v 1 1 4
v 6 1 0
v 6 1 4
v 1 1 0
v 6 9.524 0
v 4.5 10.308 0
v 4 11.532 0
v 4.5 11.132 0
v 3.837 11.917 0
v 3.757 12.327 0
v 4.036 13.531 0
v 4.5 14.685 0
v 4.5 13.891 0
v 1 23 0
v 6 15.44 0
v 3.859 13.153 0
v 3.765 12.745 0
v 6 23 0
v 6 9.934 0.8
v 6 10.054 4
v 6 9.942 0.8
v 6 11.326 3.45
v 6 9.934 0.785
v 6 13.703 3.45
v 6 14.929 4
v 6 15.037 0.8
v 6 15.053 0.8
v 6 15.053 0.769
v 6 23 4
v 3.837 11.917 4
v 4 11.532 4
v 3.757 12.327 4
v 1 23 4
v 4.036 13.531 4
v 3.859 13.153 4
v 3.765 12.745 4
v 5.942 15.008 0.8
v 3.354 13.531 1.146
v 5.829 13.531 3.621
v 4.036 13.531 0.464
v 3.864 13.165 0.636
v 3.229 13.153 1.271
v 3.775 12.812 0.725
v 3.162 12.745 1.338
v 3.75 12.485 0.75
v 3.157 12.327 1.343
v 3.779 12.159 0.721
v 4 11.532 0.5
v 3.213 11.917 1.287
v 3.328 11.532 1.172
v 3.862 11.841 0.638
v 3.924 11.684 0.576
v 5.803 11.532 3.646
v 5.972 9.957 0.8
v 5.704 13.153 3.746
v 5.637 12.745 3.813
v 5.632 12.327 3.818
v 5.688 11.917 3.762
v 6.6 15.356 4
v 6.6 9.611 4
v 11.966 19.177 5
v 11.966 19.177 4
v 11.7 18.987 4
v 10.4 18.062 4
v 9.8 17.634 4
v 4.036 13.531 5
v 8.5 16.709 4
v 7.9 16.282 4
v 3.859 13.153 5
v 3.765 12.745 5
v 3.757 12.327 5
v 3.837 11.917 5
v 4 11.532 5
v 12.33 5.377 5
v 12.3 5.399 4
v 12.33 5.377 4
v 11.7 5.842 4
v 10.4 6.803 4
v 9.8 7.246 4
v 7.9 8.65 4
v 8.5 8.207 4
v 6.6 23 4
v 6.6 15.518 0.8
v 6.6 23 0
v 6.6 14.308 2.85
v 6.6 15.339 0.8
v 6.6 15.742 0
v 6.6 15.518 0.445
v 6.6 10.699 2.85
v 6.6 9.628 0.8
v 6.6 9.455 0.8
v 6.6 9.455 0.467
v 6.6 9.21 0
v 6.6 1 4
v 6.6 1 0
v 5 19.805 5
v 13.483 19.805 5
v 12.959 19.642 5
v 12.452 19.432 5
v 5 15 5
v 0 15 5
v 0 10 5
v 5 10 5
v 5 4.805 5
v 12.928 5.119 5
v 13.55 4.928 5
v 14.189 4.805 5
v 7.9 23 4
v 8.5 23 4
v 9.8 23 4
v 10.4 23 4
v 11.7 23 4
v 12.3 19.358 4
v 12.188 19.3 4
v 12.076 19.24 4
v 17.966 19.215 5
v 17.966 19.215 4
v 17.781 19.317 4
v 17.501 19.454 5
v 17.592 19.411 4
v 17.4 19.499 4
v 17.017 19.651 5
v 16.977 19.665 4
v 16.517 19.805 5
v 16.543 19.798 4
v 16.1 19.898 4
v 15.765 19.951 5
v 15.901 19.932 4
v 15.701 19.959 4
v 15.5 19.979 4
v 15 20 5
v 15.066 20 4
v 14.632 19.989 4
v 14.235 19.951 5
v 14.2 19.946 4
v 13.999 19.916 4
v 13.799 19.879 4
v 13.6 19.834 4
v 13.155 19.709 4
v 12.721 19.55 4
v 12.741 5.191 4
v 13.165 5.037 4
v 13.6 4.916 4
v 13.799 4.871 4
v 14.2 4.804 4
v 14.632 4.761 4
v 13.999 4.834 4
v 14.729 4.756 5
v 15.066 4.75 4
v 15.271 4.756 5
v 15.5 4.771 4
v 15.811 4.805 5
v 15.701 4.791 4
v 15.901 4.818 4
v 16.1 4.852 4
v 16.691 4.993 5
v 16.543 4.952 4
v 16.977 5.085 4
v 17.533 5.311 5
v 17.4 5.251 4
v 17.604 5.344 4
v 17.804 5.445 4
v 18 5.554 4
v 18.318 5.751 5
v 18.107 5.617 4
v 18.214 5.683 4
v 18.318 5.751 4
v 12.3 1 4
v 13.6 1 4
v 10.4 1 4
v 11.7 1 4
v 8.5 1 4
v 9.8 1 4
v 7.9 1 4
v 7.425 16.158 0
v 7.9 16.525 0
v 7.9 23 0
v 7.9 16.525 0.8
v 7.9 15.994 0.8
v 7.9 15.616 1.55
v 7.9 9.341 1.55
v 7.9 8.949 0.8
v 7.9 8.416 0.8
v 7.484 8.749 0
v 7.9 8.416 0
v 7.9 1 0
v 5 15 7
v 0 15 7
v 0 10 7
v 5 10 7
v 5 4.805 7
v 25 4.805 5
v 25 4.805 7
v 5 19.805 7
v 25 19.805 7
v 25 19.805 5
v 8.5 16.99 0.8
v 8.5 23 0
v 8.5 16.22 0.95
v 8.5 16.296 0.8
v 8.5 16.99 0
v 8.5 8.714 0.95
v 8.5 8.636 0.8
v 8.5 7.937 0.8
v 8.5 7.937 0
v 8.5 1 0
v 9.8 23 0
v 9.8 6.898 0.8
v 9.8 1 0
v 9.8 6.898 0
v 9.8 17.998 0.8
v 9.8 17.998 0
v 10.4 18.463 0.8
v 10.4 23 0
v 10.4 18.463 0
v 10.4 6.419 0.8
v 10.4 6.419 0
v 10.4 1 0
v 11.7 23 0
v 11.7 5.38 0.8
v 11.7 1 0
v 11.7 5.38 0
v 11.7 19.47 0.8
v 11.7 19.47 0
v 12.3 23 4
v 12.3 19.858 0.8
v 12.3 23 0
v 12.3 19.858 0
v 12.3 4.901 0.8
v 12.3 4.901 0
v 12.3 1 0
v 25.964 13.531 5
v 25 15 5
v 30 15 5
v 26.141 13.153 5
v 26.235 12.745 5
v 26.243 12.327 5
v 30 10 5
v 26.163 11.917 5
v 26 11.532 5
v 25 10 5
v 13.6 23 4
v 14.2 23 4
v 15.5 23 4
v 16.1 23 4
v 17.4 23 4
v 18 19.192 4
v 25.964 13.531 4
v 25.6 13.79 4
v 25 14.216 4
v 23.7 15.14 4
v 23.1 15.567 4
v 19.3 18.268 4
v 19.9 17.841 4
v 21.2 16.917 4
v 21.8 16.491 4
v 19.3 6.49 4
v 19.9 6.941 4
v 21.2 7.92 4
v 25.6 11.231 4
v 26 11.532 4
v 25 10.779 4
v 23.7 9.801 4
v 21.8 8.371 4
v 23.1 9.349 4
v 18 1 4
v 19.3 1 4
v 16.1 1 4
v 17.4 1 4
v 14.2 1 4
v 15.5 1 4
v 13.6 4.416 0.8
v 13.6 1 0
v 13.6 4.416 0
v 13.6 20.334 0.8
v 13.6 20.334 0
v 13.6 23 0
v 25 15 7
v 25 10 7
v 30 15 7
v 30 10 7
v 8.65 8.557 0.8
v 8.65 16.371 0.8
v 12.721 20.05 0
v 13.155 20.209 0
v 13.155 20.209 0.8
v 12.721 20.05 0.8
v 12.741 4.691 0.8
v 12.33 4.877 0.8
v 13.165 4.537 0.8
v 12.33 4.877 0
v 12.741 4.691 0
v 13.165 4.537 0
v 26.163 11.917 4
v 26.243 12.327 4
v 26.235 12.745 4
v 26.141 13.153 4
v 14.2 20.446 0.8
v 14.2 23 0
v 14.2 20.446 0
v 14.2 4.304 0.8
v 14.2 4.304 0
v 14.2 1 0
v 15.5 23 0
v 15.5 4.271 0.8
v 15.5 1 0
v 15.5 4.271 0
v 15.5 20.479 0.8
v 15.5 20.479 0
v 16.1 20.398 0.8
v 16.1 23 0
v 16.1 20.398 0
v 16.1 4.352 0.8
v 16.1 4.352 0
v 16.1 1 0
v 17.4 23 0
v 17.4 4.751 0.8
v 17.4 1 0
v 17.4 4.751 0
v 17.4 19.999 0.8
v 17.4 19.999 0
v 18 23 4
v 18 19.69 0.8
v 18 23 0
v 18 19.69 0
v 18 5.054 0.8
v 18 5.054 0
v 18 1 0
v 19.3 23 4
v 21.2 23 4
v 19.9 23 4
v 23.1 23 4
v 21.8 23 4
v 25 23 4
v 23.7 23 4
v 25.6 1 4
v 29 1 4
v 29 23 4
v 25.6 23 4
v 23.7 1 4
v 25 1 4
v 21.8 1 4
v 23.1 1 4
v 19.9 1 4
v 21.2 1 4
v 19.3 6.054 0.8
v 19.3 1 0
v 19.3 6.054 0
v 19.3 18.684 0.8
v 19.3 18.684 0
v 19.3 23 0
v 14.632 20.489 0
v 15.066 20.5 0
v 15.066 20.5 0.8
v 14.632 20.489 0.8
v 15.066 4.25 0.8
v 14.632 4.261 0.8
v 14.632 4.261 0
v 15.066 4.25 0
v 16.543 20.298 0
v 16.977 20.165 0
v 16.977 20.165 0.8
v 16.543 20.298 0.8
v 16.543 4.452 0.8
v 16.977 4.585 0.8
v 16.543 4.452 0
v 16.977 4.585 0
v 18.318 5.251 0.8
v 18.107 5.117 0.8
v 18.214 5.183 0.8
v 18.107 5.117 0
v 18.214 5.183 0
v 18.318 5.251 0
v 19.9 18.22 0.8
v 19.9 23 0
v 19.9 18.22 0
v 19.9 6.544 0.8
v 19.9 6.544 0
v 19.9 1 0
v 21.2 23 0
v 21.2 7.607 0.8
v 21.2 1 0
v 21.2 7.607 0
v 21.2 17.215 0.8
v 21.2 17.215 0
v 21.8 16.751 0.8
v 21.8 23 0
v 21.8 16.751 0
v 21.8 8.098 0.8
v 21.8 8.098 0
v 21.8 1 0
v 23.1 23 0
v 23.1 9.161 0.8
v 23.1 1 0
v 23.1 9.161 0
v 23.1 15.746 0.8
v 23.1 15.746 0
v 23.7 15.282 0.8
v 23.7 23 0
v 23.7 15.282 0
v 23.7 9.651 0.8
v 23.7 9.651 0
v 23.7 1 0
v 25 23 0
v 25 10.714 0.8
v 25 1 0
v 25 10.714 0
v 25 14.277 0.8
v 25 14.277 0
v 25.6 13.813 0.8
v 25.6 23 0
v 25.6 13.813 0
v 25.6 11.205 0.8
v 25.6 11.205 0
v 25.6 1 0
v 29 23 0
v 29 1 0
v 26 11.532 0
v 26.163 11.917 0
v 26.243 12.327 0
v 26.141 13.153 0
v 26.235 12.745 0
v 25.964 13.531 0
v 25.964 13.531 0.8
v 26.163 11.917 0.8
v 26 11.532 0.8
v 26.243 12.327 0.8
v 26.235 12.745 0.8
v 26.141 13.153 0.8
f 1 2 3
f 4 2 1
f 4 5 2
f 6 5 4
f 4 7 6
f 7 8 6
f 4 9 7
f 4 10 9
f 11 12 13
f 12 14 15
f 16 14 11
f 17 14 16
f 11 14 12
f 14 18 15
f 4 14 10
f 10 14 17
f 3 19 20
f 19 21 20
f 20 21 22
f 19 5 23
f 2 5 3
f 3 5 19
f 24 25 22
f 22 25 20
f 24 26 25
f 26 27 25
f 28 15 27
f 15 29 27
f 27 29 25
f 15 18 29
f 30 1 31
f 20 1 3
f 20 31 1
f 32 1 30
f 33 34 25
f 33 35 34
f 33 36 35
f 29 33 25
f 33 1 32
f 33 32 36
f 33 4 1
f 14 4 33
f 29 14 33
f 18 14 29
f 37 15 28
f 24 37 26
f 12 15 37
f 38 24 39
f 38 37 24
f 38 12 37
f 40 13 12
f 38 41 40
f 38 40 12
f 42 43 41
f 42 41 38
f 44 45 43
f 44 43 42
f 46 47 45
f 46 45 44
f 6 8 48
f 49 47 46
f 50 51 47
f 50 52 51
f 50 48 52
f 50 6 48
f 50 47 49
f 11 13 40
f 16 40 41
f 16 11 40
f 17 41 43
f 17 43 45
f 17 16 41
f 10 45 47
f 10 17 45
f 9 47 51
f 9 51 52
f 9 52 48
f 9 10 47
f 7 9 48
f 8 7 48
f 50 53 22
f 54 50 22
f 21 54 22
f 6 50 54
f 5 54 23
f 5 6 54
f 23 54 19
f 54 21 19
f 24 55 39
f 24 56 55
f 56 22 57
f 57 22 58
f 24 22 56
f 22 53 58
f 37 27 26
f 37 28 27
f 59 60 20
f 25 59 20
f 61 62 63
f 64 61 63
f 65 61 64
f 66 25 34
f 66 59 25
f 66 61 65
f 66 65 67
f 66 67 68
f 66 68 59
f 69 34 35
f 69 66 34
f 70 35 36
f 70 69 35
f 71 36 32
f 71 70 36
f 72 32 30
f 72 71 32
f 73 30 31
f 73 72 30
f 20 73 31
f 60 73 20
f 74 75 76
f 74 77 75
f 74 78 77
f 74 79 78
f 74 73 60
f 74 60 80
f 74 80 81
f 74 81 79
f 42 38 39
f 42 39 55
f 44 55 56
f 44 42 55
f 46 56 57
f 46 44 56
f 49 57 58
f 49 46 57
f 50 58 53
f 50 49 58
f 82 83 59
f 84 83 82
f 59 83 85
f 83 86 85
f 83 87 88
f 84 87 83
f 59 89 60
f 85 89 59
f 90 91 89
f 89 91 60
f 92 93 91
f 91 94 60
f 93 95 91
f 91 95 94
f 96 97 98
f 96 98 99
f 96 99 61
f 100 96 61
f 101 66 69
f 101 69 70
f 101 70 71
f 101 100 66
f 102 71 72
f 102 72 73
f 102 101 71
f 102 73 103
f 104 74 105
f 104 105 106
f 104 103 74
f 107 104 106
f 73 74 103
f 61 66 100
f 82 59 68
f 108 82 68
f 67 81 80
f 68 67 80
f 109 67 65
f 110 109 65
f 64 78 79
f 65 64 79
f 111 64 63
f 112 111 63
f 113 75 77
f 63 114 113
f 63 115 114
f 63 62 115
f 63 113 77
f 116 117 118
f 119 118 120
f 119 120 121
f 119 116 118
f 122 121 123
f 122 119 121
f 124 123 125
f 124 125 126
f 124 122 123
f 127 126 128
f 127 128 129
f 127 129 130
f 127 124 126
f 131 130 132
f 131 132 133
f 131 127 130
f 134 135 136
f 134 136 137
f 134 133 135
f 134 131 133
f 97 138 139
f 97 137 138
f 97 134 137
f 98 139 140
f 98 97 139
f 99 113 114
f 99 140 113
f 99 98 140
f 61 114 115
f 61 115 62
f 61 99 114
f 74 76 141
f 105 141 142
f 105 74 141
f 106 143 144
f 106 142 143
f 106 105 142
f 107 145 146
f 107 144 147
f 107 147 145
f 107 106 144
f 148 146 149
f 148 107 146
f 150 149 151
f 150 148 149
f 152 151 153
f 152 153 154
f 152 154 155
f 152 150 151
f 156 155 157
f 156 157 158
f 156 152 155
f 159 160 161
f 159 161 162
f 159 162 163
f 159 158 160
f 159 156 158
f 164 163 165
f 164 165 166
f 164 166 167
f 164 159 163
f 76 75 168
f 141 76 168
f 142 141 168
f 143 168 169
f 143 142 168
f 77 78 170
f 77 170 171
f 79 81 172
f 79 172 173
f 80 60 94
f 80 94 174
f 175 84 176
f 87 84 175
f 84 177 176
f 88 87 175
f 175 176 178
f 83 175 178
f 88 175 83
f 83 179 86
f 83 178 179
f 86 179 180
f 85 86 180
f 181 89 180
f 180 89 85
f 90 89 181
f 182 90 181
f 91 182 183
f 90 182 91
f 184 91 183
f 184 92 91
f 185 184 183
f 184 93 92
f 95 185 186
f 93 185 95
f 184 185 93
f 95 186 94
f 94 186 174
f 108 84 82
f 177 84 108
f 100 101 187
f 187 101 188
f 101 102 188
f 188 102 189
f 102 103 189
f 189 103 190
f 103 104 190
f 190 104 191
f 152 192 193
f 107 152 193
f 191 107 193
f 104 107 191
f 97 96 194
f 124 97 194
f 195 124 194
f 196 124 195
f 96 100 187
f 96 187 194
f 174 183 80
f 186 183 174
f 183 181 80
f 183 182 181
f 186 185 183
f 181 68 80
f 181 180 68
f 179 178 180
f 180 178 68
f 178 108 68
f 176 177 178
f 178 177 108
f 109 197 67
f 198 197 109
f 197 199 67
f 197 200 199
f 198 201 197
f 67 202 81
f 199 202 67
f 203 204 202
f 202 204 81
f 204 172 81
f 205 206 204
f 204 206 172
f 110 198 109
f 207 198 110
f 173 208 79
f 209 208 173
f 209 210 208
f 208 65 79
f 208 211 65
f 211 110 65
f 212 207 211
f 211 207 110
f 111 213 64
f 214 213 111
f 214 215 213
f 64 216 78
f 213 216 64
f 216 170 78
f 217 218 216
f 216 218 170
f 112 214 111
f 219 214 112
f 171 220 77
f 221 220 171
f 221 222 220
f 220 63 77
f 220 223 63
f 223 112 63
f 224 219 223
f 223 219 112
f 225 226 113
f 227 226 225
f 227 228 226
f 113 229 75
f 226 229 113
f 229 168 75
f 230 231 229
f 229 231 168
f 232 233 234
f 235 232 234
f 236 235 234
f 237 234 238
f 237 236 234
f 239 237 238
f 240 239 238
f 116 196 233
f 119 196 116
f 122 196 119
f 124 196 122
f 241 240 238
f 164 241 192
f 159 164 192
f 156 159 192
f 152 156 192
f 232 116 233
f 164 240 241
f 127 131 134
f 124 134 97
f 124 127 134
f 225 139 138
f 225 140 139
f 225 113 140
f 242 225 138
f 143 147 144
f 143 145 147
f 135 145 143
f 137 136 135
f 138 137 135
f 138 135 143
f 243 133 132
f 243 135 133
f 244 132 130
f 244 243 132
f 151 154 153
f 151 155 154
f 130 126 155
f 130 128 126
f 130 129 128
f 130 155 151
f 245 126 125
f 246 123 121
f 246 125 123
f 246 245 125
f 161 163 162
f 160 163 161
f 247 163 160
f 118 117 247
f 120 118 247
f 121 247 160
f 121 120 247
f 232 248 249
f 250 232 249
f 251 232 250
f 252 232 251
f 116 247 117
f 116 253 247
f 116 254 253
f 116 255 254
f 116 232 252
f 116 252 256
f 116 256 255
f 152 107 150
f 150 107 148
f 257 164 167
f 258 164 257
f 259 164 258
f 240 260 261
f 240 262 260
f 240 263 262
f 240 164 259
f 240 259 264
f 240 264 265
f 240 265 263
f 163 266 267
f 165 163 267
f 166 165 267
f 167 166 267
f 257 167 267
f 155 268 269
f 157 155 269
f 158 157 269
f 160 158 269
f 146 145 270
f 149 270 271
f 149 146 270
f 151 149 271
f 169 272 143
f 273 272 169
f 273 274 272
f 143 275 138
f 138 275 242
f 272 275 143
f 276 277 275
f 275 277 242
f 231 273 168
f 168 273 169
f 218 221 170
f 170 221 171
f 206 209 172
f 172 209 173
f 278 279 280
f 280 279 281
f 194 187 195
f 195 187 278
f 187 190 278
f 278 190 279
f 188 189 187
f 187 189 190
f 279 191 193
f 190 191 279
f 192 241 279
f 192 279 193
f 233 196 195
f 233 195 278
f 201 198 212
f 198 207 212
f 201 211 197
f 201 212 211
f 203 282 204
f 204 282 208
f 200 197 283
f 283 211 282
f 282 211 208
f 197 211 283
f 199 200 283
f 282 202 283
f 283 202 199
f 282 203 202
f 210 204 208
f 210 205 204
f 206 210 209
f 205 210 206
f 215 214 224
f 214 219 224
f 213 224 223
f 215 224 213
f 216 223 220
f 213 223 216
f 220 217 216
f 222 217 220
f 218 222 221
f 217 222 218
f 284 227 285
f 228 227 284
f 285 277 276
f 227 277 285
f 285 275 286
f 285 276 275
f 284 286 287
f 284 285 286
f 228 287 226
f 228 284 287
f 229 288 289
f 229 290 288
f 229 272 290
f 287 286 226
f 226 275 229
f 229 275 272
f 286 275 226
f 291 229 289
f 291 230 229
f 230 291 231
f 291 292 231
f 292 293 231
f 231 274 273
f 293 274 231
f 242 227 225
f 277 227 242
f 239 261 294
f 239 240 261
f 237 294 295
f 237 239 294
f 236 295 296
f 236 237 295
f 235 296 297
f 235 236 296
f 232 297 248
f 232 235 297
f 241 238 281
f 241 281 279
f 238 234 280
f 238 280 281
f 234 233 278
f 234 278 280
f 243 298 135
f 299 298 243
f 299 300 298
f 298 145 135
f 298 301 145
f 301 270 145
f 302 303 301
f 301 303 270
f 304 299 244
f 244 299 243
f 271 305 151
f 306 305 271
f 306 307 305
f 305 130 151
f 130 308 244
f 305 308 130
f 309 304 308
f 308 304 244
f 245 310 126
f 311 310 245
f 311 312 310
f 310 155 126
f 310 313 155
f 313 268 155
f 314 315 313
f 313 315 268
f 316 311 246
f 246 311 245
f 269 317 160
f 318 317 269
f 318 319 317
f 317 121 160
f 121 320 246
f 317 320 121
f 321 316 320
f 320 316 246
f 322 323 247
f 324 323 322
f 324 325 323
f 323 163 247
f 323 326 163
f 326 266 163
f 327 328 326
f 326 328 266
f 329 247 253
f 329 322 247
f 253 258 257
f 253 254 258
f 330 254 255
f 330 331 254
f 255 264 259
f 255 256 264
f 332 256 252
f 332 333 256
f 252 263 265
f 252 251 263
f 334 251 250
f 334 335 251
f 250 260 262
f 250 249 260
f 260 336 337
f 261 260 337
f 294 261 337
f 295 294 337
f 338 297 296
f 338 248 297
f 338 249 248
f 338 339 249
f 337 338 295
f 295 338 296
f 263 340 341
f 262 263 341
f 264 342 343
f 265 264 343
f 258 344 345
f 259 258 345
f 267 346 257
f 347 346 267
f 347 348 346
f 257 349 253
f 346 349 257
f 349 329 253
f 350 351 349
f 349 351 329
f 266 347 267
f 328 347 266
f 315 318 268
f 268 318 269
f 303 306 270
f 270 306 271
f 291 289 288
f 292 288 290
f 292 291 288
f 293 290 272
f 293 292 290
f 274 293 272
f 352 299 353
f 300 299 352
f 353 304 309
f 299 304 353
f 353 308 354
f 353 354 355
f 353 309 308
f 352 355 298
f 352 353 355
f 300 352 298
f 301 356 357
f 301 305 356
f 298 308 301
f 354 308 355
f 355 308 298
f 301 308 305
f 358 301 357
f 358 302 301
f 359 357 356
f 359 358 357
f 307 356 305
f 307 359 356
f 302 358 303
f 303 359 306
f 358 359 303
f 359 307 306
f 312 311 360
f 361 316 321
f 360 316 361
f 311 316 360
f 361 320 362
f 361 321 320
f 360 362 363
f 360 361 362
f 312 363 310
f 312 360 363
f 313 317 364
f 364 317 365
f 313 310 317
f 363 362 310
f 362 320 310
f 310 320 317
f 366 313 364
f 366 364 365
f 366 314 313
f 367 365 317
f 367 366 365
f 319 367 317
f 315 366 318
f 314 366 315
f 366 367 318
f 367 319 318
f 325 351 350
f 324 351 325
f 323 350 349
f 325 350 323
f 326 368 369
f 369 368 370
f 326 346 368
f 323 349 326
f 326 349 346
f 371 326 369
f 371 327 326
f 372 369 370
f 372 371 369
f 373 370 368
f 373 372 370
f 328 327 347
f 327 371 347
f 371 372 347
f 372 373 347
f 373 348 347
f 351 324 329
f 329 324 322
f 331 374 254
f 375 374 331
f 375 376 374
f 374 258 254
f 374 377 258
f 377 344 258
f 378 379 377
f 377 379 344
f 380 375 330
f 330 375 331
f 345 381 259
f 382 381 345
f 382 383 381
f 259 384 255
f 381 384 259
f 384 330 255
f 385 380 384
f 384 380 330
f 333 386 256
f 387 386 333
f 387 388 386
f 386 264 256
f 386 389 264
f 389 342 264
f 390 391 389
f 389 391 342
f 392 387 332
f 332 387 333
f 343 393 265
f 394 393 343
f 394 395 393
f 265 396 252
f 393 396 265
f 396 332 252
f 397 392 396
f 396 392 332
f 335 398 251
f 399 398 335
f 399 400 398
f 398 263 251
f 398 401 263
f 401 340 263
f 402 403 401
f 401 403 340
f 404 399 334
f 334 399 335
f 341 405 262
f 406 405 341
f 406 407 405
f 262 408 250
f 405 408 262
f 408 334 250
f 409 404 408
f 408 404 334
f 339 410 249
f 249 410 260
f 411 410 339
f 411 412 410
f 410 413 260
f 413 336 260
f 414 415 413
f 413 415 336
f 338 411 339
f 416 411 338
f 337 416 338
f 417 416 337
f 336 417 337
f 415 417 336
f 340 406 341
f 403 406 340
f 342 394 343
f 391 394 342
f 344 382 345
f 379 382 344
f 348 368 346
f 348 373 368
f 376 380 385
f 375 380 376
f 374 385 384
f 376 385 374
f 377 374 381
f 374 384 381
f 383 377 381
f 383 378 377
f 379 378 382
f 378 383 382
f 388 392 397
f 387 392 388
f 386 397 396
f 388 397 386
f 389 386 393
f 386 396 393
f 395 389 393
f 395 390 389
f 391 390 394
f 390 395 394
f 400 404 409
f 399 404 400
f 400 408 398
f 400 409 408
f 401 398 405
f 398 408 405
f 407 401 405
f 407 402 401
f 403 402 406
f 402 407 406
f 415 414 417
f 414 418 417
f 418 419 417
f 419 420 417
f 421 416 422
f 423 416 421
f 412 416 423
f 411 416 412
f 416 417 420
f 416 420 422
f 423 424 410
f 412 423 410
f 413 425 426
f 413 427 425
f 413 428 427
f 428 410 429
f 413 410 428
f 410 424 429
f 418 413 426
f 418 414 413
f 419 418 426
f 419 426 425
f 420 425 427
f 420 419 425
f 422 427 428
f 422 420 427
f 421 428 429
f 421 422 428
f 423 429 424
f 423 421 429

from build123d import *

# Parameters (mm, degrees)
SKETCH_W             = 28
SKETCH_H             = 22
PAD002_DEPTH         = 5
POCKET001_DEPTH      = 0.8
SKETCH002_W          = 0.6
SKETCH002_H          = 23
POCKET_DEPTH         = 4
LINEARPATTERN_COUNT  = 11
LINEARPATTERN_PITCH  = 1.9
POCKET002_DEPTH      = 3.5
SKETCH006_W          = 28
SKETCH006_H          = 22
POCKET005_DEPTH      = 1
POCKET005_DEPTH_BACK = 1
PAD_DEPTH            = 2


with BuildPart() as part:
    # Sketch → Pad002 (new body)
    with BuildSketch(Plane.XY):
        with Locations((15, 12)):
            Rectangle(SKETCH_W, SKETCH_H)
    extrude(amount=PAD002_DEPTH)

    # Sketch001 → Pocket001 (cut)
    with BuildSketch(Plane.XY):
        with BuildLine():
            ThreePointArc((17.967868, 19.714572), (14.962963, 20.499886), (11.967982, 19.677535))
            Line((11.967982, 19.677535), (4.036475, 13.531422))
            ThreePointArc((4.036475, 13.531422), (3.750333, 12.536475), (4, 11.531754))
            Line((4, 11.531754), (12.33, 4.876817))
            ThreePointArc((12.33, 4.876817), (15.374304, 4.261687), (18.318313, 5.25112))
            Line((18.318313, 5.25112), (26, 11.531754))
            ThreePointArc((26, 11.531754), (26.249667, 12.536475), (25.963525, 13.531422))
            Line((25.963525, 13.531422), (17.967868, 19.714572))
        make_face()
    extrude(amount=POCKET001_DEPTH, mode=Mode.SUBTRACT)

    # Sketch002 → Pocket (cut)
    with BuildSketch(Plane.XY):
        with Locations((6.3, 11.5)):
            Rectangle(SKETCH002_W, SKETCH002_H)
    pocket = extrude(amount=POCKET_DEPTH, mode=Mode.SUBTRACT)

    # LinearPattern: Pocket ×11
    with Locations(*[(i * LINEARPATTERN_PITCH, 0, 0) for i in range(1, LINEARPATTERN_COUNT)]):
        add(pocket, mode=Mode.SUBTRACT)

    # Sketch003 → Pocket002 (cut)
    with BuildSketch(Plane(origin=(0.5, 0, 4), x_dir=(0.707107, 0, -0.707107), z_dir=(0.707107, 0, 0.707107))):
        with BuildLine():
            ThreePointArc((17.966363, 19.215428), (14.961232, 19.999875), (11.966488, 19.17666))
            Line((11.966488, 19.17666), (4.036475, 13.531422))
            ThreePointArc((4.036475, 13.531422), (3.750333, 12.536475), (4, 11.531754))
            Line((4, 11.531754), (12.33, 5.376817))
            ThreePointArc((12.33, 5.376817), (15.374304, 4.761687), (18.318313, 5.75112))
            Line((18.318313, 5.75112), (26, 11.531754))
            ThreePointArc((26, 11.531754), (26.249667, 12.536475), (25.963525, 13.531422))
            Line((25.963525, 13.531422), (17.966363, 19.215428))
        make_face()
    extrude(amount=POCKET002_DEPTH, mode=Mode.SUBTRACT)

    # Sketch006 → Pocket005 (cut, two sides)
    with BuildSketch(Plane.XY.offset(5)) as pocket005_sk:
        with Locations((15, 12)):
            Rectangle(SKETCH006_W, SKETCH006_H)
        with BuildLine():
            ThreePointArc((17.966363, 19.215428), (14.961232, 19.999875), (11.966488, 19.17666))
            Line((11.966488, 19.17666), (4.036475, 13.531422))
            ThreePointArc((4.036475, 13.531422), (3.750333, 12.536475), (4, 11.531754))
            Line((4, 11.531754), (12.33, 5.376817))
            ThreePointArc((12.33, 5.376817), (15.374304, 4.761687), (18.318313, 5.75112))
            Line((18.318313, 5.75112), (26, 11.531754))
            ThreePointArc((26, 11.531754), (26.249667, 12.536475), (25.963525, 13.531422))
            Line((25.963525, 13.531422), (17.966363, 19.215428))
        make_face(mode=Mode.SUBTRACT)
    extrude(amount=-POCKET005_DEPTH, mode=Mode.SUBTRACT)
    extrude(pocket005_sk.sketch, amount=POCKET005_DEPTH_BACK, mode=Mode.SUBTRACT)

    # Sketch004 → Pad (join)
    with BuildSketch(Plane.XY.offset(5)):
        Polygon((5, 19.805), (25, 19.805), (25, 15), (30, 15), (30, 10), (25, 10), (25, 4.805), (5, 4.805), (5, 10), (0, 10), (0, 15), (5, 15), align=None)
    extrude(amount=PAD_DEPTH)


solid = part.part
